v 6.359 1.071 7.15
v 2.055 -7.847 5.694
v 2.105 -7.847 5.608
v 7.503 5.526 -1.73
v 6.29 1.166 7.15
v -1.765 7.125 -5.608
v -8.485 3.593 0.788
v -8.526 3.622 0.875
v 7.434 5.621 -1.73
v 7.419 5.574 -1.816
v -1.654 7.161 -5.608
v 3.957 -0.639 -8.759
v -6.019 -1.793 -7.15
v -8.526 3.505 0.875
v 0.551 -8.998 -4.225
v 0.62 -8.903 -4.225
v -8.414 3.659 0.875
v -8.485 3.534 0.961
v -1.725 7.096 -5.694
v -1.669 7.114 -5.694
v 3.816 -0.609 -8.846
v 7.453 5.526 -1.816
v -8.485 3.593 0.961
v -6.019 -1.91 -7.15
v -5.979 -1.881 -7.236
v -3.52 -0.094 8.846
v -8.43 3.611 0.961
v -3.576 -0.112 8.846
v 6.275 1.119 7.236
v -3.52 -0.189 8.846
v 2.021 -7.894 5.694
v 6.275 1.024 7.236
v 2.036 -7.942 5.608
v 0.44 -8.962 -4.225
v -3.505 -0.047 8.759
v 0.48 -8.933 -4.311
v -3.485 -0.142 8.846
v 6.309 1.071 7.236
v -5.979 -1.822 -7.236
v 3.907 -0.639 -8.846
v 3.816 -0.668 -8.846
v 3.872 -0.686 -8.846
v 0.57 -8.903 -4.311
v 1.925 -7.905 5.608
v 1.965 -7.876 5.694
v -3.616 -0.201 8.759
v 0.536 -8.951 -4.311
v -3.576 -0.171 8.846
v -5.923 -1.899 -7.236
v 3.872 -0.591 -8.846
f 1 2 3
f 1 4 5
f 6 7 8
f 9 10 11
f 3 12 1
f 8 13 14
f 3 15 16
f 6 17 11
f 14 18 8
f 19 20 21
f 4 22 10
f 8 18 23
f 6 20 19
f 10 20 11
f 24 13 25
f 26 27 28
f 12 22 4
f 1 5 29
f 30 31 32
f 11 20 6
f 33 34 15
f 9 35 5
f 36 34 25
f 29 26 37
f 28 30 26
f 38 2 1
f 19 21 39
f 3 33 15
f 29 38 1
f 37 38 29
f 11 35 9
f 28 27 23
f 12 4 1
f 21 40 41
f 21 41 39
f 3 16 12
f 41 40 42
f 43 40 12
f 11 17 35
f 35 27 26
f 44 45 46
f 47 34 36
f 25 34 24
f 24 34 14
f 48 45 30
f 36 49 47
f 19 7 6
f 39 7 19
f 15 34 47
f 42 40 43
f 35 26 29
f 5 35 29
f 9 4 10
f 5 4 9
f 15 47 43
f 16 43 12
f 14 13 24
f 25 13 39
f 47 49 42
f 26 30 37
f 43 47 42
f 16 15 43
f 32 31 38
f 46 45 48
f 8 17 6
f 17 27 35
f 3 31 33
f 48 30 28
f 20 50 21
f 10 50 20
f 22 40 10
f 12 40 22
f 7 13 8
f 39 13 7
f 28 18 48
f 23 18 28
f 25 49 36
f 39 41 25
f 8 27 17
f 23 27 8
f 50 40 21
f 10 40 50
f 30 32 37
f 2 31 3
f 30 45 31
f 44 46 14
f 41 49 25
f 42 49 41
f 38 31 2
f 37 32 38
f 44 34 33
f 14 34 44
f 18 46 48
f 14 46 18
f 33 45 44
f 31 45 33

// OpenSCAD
// Auto-generated OpenSCAD file

    inner_points = 10*[[0.20054969961687025, -0.7846648703547799, 0.5607849288864212], [-0.593825213987971, -0.18515141359460924, -0.7149838983501856], [0.6259312435012088, 0.10711605562361853, 0.7149838983501856], [-0.16844367010363231, 0.7066295123837892, -0.5607849288864212], [0.05204957726190045, -0.8903315309220826, -0.42246593966397755], [0.7403313734536651, 0.5526003178298201, -0.17296676604139943], [-0.35354696868411156, -0.01417916531901519, 0.8759494264322145], [-0.8444976651021647, 0.3563405276717107, 0.08748092941239895], [0.3856529981973495, -0.06385619265197554, -0.8759494264322145]];

    outer_points = 10*[[0.05186484528504093, -0.5598217429238111, 0.7670841877921737], [0.7499238660434013, 0.5598217429238111, -0.16947657205566397], [-0.7499238660434013, -0.5598217429238111, 0.16947657205566397], [-0.05186484528504093, 0.5598217429238111, -0.7670841877921737], [0.44189511281724014, 0.3609594235595834, 0.7608846831151523], [-0.8554262739081575, 0.3609594235595834, -0.20606475108230704], [0.11884163653508852, -0.9300334806470967, -0.15944556277482932], [0.5502658375172237, -0.23805575111085425, -0.7382719448902207], [-0.11884163653508852, 0.9300334806470967, 0.15944556277482932]];

    // Convex hull for inner set (I)
    module inner_hull() {
        hull() {
            for (p = inner_points) {
                translate(p) sphere(r=0.1);
            }
        }
    }

    // Convex hull for outer set (O) minus inner hull (O \ I)
    module outer_minus_inner() {
        difference() {
            hull() {
                for (p = outer_points) {
                    translate(p) sphere(r=0.1);
                }
            }
            inner_hull(); // Subtract inner hull
        }
    }

    // Convex hull for outer set (O) minus all translated inner hulls
    module outer_minus_AllTranslationInner() {
        difference() {
            hull() {
                for (p = outer_points) {
                    translate(p) sphere(r=0.1);
                }
            }
            hull() {
                translate([0,0,50]) inner_hull();
                translate([0,0,-50]) inner_hull();
            }; // Subtract translated inner hulls
        }
    }

    // Difference between outer_minus_inner and outer_minus_AllTranslationInner
    module outer_minus_inner_diff() {
        difference() {
            // Outer minus inner
            difference() {
                hull() {
                    for (p = outer_points) {
                        translate(p) sphere(r=0.1);
                    }
                }
                inner_hull();
            }

            // Subtract Outer minus AllTranslationInner
            difference() {
                hull() {
                    for (p = outer_points) {
                        translate(p) sphere(r=0.1);
                    }
                }
                hull() {
                    translate([0,0,50]) inner_hull();
                    translate([0,0,-50]) inner_hull();
                };
            }
        }
    }

    // Rendering all with colors applied
    color([1, 0, 0, 0.5]) inner_hull(); // Transparent red
    
